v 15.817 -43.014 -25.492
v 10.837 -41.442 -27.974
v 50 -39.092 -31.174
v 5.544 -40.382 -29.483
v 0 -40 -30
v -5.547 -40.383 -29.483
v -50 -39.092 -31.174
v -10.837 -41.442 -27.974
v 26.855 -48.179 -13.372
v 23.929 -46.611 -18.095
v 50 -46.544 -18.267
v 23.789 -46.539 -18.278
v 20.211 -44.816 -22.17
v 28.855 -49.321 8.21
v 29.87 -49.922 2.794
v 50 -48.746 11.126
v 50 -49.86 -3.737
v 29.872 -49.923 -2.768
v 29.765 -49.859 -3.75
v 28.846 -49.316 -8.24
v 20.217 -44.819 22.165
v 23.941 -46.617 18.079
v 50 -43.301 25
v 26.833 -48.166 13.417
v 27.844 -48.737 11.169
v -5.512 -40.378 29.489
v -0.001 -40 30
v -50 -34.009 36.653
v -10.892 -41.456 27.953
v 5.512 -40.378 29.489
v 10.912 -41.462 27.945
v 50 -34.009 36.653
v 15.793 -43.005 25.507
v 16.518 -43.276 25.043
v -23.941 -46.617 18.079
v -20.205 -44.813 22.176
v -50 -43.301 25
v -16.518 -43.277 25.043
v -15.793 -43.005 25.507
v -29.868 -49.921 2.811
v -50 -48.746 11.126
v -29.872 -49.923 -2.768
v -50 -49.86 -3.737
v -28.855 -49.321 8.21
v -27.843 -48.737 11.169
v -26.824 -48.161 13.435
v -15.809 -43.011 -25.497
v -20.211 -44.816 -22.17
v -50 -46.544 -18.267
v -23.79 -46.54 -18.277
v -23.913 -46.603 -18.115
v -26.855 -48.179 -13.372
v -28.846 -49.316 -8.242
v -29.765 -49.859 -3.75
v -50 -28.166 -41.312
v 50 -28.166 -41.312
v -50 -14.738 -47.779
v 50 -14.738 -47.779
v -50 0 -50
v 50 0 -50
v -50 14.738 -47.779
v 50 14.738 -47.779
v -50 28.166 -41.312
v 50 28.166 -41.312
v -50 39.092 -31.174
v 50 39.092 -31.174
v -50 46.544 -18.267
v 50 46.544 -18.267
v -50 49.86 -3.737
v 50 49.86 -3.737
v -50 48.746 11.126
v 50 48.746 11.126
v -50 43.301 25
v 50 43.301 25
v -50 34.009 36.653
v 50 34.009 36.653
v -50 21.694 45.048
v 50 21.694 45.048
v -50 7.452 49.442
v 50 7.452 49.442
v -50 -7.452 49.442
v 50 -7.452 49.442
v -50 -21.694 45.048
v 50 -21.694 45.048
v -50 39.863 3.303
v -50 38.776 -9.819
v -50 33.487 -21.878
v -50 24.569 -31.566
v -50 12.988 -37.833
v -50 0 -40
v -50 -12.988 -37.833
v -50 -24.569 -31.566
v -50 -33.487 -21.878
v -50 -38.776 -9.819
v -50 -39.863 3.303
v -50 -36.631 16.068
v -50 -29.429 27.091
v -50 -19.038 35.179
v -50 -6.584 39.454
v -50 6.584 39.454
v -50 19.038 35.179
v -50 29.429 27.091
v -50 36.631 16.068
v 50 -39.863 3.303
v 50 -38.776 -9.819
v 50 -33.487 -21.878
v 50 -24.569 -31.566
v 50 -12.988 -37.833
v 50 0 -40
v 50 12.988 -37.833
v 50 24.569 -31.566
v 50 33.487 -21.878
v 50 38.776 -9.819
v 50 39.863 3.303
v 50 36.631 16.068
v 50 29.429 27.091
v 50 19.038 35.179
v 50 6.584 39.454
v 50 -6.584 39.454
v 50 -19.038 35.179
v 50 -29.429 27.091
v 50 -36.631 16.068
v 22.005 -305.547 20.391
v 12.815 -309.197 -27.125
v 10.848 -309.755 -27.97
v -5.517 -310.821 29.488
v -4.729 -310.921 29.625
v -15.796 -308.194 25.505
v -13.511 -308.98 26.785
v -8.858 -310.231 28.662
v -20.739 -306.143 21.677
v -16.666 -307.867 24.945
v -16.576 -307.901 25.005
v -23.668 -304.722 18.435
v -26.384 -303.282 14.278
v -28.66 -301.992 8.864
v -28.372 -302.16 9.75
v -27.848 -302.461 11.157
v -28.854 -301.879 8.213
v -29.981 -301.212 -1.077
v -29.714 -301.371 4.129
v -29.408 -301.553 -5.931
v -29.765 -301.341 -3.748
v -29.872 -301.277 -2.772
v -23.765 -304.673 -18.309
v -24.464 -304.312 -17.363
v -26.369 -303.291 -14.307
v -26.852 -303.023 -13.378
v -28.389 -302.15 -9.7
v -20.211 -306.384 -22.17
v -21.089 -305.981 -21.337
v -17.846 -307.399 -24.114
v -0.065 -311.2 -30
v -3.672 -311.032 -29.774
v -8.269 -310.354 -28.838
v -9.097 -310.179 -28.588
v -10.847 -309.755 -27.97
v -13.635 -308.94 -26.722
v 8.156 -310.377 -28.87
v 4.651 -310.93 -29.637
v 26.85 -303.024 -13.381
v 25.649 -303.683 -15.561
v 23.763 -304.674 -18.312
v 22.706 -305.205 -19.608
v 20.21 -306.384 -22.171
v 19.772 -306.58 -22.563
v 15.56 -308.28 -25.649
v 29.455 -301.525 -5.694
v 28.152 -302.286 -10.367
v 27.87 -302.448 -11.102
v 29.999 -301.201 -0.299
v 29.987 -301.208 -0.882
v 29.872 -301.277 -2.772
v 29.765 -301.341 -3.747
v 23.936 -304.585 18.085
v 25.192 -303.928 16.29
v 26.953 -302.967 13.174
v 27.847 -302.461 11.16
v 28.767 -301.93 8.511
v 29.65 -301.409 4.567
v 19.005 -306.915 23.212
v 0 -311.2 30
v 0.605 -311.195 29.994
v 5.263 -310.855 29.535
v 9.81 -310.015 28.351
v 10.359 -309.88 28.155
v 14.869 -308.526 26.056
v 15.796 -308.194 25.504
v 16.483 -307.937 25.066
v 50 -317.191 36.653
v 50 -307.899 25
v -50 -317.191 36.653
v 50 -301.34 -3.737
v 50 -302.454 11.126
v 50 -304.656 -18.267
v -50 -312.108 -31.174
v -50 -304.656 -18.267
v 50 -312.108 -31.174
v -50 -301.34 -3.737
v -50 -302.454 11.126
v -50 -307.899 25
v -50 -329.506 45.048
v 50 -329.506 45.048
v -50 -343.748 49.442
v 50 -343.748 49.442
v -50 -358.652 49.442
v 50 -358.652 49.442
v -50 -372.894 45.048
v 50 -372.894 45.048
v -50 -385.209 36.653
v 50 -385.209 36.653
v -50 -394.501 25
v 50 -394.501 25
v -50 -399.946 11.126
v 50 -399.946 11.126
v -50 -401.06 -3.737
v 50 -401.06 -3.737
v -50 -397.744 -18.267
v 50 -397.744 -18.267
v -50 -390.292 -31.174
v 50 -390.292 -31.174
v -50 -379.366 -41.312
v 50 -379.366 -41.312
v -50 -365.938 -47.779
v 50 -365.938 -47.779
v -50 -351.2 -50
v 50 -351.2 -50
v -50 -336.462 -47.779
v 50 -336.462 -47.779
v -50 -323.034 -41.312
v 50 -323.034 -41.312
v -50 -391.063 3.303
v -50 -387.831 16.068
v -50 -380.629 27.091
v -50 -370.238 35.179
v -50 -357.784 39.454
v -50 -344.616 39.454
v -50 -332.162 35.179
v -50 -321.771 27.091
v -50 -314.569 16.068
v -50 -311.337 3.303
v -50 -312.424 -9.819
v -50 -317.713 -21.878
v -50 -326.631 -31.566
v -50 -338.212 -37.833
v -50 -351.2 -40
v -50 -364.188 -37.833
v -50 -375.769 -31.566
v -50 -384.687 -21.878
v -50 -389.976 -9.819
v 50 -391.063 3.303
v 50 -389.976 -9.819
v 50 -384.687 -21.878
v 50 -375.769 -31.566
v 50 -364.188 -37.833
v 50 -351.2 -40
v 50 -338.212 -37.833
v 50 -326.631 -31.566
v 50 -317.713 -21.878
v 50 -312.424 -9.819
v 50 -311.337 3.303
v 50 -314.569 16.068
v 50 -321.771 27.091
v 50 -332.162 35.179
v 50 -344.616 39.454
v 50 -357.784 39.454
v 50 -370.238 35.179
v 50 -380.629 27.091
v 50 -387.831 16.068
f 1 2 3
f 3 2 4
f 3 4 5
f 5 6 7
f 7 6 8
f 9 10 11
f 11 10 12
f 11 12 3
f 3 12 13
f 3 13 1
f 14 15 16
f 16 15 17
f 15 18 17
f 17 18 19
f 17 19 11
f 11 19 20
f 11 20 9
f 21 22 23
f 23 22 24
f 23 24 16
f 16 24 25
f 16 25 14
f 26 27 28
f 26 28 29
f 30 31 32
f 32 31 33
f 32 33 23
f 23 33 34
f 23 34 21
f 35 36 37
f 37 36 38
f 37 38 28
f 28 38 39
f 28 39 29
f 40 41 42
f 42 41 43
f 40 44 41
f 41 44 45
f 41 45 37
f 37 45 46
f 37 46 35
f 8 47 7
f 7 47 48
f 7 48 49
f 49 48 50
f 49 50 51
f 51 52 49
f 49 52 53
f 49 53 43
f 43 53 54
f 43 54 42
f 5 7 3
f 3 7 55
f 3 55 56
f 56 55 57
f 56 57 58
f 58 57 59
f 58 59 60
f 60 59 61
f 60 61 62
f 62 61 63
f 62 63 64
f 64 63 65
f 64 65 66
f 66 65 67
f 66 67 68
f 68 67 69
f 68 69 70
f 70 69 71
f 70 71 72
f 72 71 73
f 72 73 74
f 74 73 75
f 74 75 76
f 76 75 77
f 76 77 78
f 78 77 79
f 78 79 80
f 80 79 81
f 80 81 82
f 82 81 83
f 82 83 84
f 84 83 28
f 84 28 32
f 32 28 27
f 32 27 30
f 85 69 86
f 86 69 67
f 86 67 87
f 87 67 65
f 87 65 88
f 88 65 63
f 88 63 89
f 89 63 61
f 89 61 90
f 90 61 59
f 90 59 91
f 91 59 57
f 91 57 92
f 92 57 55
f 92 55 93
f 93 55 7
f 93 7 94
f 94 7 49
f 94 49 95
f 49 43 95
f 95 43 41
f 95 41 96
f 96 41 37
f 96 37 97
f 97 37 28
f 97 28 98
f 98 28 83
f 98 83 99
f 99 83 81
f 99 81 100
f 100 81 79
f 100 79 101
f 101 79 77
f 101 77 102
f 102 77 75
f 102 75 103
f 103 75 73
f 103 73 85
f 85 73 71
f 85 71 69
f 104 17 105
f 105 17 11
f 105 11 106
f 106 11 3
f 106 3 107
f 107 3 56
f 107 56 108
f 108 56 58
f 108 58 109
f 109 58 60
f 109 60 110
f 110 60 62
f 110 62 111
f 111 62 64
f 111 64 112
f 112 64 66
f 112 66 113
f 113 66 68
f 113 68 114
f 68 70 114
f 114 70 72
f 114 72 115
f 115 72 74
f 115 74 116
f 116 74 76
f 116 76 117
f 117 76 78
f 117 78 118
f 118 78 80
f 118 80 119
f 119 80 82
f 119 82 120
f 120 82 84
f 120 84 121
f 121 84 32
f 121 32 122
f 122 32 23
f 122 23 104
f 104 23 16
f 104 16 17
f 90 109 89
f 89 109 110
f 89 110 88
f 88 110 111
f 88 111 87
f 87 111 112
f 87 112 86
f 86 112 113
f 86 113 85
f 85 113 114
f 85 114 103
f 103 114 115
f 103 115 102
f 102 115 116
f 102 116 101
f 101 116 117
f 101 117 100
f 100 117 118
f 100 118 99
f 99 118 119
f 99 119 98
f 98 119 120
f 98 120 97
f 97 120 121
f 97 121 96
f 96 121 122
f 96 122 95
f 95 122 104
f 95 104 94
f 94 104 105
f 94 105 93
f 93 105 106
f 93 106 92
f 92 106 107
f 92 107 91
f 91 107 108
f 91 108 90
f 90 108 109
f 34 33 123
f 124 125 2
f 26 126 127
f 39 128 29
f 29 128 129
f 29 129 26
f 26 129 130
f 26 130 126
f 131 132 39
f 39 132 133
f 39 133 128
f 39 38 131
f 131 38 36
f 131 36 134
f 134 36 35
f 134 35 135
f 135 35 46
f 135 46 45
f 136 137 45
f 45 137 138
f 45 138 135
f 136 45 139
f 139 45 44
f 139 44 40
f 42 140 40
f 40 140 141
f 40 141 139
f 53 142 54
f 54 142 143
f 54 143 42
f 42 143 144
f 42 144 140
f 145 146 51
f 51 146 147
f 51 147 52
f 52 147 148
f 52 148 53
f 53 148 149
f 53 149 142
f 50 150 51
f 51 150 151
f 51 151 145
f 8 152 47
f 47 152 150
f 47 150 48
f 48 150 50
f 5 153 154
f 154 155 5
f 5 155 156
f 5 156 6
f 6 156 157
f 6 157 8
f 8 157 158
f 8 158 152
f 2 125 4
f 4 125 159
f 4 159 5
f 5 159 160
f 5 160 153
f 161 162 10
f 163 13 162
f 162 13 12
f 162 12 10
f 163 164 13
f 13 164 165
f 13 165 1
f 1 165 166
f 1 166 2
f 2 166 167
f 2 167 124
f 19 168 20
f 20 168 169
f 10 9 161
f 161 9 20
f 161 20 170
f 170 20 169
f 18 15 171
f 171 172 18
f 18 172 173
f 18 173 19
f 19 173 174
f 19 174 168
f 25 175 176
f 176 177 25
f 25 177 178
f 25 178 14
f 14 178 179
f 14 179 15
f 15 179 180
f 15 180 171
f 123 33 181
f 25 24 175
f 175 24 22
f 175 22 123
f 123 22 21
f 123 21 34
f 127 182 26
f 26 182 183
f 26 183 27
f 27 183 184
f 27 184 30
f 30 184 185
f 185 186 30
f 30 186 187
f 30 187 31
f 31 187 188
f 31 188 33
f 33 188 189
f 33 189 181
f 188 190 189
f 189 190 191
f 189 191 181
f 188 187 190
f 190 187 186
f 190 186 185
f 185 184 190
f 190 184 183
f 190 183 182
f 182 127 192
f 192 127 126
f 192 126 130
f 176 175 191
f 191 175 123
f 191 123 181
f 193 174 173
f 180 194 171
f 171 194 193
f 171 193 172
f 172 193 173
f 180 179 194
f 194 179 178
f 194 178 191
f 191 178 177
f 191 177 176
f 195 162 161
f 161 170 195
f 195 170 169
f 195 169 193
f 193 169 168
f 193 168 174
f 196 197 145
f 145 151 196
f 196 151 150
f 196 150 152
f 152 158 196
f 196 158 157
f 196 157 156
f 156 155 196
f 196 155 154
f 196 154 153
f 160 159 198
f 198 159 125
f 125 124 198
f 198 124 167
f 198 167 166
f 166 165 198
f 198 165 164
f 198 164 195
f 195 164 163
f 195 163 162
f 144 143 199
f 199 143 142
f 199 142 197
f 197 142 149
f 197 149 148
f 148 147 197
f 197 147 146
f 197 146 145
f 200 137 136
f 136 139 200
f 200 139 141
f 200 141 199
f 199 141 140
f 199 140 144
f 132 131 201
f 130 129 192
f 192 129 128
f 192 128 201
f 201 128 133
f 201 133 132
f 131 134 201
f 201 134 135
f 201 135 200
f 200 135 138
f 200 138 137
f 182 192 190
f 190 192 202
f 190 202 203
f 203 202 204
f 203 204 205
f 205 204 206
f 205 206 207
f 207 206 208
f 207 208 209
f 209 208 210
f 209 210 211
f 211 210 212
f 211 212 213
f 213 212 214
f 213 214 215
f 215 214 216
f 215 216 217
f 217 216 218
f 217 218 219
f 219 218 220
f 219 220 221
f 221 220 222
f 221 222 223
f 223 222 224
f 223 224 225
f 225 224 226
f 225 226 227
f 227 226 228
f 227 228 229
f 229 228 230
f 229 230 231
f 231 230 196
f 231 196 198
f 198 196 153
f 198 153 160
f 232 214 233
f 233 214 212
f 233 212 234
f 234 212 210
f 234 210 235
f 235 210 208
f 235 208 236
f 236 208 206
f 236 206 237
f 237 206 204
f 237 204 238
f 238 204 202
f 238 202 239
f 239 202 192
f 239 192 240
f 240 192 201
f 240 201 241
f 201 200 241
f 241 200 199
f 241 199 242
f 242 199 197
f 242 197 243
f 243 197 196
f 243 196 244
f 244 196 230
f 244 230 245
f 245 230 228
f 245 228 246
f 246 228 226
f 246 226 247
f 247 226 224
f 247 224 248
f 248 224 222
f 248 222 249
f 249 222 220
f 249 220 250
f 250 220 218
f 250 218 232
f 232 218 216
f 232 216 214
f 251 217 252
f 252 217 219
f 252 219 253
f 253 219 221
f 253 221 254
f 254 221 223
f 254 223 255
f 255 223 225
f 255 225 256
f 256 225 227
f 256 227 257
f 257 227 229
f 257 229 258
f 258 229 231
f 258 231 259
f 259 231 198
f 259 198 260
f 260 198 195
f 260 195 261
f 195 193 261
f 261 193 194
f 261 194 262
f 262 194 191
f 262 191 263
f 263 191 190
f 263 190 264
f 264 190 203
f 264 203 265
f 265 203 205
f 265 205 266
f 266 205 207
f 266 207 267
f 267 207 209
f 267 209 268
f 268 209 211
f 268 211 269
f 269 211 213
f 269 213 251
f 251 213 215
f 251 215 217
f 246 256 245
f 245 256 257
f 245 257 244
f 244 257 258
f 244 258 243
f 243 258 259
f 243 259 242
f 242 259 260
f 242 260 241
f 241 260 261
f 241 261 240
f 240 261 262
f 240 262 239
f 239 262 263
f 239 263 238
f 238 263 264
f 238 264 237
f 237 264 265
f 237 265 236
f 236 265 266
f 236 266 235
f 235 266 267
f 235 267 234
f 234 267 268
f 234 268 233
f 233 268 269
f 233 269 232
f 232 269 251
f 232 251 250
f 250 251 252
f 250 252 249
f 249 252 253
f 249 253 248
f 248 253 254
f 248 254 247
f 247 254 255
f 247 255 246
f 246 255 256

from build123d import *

# Parameters (mm, degrees)
SKETCH_1_R           = 50
SKETCH_1_R_2         = 40
EXTRUDE_1_DEPTH      = 50
EXTRUDE_2_REACH      = 238.422
EXTRUDE_2_END_RADIUS = 50
SKETCH_2_R           = 30


with BuildPart() as part:
    # 草图1 → 凸台-拉伸1 (new, symmetric)
    with BuildSketch(Plane(origin=(0, 0, 0), x_dir=(0, 0, -1), z_dir=(1, 0, 0))):
        Circle(SKETCH_1_R)
        Circle(SKETCH_1_R_2, mode=Mode.SUBTRACT)
    extrude_1 = extrude(amount=EXTRUDE_1_DEPTH, both=True)

    # 凸台-拉伸2: up to this cylinder (the profile starts outside it)
    extrude_2_end = Plane(origin=(0, 0, 0), z_dir=(1, 0, 0)) * Cylinder(EXTRUDE_2_END_RADIUS, 577.844, mode=Mode.PRIVATE)
    # 草图2 → 凸台-拉伸2 (add, up to the surface)
    with BuildSketch(Plane(origin=(0, -175.6, 0), x_dir=(1, 0, 0), z_dir=(0, 1, 0)), mode=Mode.PRIVATE) as extrude_2_sk1:
        with Locations(Location((0, 0, 0), (0, 0, 90))):
            Circle(SKETCH_2_R)
    extrude_2_tool1 = extrude(extrude_2_sk1.sketch, amount=EXTRUDE_2_REACH, mode=Mode.PRIVATE) - extrude_2_end
    extrude_2 = extrude_2_tool1.solids().sort_by_distance((0, -175.6, 0))[0]
    add(extrude_2)

    # 镜向4: 凸台-拉伸2 across plane
    add(extrude_2.mirror(Plane.ZX.offset(-175.6)))

    # 镜向5: 凸台-拉伸1 across plane
    add(extrude_1.mirror(Plane.ZX.offset(-175.6)))


solid = part.part
